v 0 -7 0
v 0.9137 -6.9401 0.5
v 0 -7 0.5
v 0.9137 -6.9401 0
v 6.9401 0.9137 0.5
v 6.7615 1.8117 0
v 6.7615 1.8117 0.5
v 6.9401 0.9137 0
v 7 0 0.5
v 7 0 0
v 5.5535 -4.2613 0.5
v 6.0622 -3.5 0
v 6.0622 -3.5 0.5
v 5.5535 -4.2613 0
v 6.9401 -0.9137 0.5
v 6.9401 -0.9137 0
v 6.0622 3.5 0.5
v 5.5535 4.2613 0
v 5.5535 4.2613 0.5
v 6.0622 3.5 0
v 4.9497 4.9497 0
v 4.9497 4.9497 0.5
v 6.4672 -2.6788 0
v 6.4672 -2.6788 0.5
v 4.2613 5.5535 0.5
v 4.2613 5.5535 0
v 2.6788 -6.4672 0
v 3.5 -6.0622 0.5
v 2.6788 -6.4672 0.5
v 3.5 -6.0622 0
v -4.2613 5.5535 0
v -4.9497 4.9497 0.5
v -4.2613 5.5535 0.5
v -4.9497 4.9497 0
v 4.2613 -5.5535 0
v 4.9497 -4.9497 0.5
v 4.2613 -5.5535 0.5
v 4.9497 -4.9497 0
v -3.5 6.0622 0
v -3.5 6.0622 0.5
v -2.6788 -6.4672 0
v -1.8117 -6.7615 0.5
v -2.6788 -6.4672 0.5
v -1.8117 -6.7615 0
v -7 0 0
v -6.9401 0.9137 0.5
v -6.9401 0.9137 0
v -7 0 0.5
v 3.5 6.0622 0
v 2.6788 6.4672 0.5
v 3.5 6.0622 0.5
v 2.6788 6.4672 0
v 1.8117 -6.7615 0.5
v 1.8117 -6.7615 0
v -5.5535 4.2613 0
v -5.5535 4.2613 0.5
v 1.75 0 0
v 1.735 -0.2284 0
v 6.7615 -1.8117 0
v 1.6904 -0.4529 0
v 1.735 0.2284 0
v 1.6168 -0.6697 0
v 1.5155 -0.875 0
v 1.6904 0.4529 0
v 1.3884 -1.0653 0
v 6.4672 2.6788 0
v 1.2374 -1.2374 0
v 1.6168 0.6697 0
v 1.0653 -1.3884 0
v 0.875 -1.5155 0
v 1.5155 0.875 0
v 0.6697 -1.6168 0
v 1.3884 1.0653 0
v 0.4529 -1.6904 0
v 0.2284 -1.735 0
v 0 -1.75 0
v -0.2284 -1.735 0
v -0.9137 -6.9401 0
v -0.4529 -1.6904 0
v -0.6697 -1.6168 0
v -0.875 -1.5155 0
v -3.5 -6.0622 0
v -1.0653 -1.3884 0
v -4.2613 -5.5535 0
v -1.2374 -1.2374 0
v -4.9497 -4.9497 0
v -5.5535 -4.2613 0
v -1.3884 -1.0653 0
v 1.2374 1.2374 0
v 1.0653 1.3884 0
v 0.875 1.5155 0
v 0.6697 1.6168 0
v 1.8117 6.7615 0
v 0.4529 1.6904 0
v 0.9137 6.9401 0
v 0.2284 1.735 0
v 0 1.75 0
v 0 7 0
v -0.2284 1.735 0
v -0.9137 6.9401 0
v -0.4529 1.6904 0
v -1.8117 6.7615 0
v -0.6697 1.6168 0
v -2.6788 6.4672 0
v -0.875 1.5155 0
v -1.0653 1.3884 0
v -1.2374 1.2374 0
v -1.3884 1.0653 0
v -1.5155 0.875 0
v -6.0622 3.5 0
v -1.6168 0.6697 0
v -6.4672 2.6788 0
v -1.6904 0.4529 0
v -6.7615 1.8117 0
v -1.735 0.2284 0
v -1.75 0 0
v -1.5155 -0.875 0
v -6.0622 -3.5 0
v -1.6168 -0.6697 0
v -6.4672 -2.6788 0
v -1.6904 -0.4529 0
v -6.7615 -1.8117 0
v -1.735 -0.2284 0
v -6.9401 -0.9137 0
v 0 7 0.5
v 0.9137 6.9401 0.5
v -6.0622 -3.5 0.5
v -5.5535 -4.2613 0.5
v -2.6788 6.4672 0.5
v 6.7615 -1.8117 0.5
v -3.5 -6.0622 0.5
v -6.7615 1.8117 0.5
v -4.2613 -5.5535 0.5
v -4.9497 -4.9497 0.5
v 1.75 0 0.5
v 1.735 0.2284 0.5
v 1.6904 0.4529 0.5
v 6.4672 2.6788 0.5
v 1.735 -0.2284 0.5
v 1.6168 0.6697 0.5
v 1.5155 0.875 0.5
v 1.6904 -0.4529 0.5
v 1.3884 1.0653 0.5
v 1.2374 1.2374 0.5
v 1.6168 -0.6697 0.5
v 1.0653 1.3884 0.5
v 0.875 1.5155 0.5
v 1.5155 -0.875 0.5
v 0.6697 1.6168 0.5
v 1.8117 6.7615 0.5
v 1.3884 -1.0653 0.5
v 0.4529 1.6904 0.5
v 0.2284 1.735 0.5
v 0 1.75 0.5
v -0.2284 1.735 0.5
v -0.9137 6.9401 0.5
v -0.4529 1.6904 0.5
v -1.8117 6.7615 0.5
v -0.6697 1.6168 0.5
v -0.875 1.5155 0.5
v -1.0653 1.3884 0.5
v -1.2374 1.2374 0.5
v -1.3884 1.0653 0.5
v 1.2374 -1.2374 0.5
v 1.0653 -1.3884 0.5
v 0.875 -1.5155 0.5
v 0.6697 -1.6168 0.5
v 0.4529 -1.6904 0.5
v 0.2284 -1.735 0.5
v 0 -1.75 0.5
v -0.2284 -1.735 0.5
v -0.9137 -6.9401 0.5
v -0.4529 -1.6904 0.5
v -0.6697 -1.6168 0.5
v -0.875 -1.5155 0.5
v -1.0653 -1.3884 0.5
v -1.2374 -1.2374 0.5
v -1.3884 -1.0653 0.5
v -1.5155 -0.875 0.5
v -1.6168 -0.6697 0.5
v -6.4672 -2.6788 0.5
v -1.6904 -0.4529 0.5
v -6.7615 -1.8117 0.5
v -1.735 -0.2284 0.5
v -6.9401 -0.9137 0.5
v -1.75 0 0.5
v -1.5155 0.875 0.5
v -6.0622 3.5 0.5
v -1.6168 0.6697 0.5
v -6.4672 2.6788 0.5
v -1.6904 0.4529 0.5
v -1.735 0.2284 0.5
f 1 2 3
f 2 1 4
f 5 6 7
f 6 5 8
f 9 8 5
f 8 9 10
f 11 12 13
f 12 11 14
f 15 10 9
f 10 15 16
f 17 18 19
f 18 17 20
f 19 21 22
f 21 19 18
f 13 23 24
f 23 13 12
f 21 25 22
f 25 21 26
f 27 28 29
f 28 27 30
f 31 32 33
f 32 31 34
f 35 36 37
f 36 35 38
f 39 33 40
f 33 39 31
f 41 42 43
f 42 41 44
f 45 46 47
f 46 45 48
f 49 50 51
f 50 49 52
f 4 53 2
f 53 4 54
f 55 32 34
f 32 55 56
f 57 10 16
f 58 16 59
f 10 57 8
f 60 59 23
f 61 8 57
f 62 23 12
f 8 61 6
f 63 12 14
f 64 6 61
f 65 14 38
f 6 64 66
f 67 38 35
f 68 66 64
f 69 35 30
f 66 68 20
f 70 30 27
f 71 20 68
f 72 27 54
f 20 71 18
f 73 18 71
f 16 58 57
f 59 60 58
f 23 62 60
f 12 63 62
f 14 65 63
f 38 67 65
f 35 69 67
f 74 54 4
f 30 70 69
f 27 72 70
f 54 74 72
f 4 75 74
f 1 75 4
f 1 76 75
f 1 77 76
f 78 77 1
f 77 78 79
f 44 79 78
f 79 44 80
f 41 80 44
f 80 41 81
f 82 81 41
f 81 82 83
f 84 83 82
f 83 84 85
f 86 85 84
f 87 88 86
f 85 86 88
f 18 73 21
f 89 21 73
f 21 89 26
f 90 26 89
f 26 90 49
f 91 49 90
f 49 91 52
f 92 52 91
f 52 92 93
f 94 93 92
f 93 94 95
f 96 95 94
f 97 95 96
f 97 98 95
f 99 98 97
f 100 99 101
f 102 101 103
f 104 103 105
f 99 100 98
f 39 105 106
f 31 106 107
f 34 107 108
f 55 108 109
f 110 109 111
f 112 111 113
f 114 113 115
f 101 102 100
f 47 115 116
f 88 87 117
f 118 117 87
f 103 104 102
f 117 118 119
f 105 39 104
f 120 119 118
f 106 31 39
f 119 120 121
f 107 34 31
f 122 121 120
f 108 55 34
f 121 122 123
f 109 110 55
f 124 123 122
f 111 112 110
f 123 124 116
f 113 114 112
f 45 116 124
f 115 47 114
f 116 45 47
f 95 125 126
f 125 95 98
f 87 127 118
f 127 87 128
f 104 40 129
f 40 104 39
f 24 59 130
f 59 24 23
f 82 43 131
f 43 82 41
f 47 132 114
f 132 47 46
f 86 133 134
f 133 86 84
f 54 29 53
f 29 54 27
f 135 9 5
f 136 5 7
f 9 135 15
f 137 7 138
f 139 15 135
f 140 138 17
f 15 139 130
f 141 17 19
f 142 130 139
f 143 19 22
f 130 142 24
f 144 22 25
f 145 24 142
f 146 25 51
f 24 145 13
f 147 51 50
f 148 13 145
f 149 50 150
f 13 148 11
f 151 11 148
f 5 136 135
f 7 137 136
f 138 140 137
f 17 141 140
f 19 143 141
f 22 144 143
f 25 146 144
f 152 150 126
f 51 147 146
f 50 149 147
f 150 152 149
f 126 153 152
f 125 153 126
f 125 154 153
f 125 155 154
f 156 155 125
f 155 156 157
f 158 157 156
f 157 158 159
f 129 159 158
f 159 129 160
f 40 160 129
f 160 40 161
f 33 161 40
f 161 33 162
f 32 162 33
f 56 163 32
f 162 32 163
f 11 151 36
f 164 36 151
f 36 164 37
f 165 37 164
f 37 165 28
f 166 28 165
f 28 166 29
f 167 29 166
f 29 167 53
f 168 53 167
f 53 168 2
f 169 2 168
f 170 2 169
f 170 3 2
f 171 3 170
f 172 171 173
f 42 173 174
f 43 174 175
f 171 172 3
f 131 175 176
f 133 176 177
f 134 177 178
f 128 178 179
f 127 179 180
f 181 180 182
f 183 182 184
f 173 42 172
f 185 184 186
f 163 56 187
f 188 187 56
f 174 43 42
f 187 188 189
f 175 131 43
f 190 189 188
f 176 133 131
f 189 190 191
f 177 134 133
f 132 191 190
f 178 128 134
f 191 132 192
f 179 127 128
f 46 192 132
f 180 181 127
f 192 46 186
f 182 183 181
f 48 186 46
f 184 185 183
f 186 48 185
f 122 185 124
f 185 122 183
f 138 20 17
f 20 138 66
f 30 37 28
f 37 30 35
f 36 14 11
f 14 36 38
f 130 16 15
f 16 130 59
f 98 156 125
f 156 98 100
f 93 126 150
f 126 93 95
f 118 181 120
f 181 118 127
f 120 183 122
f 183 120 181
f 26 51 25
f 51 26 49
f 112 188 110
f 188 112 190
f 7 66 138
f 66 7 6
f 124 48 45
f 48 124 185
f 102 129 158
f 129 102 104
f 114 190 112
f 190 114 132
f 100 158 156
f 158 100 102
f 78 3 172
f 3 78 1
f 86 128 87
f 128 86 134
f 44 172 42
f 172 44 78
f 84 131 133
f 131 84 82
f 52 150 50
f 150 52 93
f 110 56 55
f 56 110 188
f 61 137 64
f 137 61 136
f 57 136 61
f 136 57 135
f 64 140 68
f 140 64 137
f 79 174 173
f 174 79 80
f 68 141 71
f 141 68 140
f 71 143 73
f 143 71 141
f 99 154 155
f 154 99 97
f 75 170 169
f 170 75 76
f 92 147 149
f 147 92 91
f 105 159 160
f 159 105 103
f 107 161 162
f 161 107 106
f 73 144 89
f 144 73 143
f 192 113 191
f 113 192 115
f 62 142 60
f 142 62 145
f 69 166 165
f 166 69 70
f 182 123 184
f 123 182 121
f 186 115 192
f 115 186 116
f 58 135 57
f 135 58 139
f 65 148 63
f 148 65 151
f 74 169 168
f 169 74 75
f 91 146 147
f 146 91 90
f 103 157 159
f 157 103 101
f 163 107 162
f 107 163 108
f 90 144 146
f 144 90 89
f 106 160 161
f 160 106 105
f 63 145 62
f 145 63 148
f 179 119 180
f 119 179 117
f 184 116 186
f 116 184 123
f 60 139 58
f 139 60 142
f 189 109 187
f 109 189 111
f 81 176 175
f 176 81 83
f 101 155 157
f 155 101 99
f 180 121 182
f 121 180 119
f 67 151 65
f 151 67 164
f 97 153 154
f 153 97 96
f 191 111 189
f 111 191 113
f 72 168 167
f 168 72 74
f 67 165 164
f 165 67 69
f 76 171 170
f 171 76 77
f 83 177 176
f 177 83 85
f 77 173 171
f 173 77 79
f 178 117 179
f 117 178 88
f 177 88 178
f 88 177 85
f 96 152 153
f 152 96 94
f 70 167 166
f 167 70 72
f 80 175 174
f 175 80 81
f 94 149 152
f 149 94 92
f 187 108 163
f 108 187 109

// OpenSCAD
// file: parameters.scad
// =============================================================================
// Gen-BP — nightly 2026-10-07 (physics_scorer, honest magpylib watts)
// Cheapest upgrade of the champion: keep Gen-BL's wound bobbins, stator, gap sleeve, endbells and Ø134 steel, and print only two new rotor carriers — 5.00 mm thick (flush magnet seat, recess 0 instead of 0.10 mm, magnet→wound envelope still 0.50 mm) with the diametric Ø5 assists moved from R40/50/60 to R43/50/57. Modular: the rotor is the only swapped module.
// Clocking 0 deg (magnets N facing S) + D-flat keyed bore + index notch + flip-symmetric hole map.
// Windable 2-piece bobbin; turns = physics_scorer turns_fit; copper only between flanges.
// Steel back-iron: 2× Ø134 × 4.76 mm (3/16") mild-steel discs (steel_backiron_disc.dxf); magnets sit ON the steel
// (through-pockets) -> score with --back-iron.
// =============================================================================
topology            = "dual_rotor";

// --- Wire / winding (physics_scorer winding-fit) -------------------------------
wire_awg            = 26;
wire_od             = 0.45;     // insulated OD mm (bare 0.405)
fill_realistic      = 0.65;     // insulated-wire area / window (DENSE layered wind with a jig; scorer cap 0.65)
turns               = 566;       // = physics_scorer turns_fit (do NOT raise)
coil_former_type    = "bobbin";
coil_core_inset     = 17.10;     // radial copper build: hub = copper boundary inset by this
wind_build_axial    = 0.0;      // nothing proud of the flanges
wind_build_radial   = 0.0;

// --- Bobbin (base + lid) ---------------------------------------------------------
coil_id_r           = 29.00;    // copper boundary sector
coil_od_r           = 71.00;
span_deg            = 52.68;    // = pitch - 2*asin((wall+0.85)/coil_id_r) -> >=1.2 mm stator web
former_web          = 8.10;     // copper height between flanges (TALL copper: steel keeps Bz up)
flange_t            = 0.80;     // >= 0.8 mm FDM wall rule (tall winds push on the flanges)
wall                = 1.00;     // flange lip beyond copper
former_bare_h       = former_web + 2 * flange_t;
coil_envelope_h     = former_bare_h + 2 * wind_build_axial;
tab_w               = 7.0;
tab_len             = 7.0;
tab_h               = former_bare_h / 2;
pin_d               = 1.9;      // 1.75 mm filament locating pin
coil_mount_r        = coil_od_r + 0.2 + 4.0;
lead_y              = 1.6;
lead_slot_w         = 0.9;
lead_groove_d       = 0.6;

// --- Gap -------------------------------------------------------------------------
run_clear           = 0.50;     // rotor face -> flange
gap_spacer_h        = run_clear + wind_build_axial;
m2m                 = coil_envelope_h + 2 * run_clear;   // rotor face to rotor face (= gap_sleeve length)

// --- Stator ----------------------------------------------------------------------
coil_stations       = 6;
bay_clear           = 0.25;
stator_thick        = former_bare_h;                        // bobbins flush both faces
stator_od           = 160;
shaft_clear_stator  = 14.0;     // stator is static; gap sleeve OD 12 spins inside

// --- Rotor(s) --------------------------------------------------------------------
magnet_Br           = 1.43;     // N52
magnet_d_large      = 20.0;
magnet_h_large      = 5.0;      // one O20x5 per pocket
magnet_h_small      = 5.0;      // one O5x5 per pocket
halbach_magnetisation = "diametric"; // O5x5 assist magnets MUST be DIAMETRICALLY magnetised (tangential)
rotor_b_same_axis   = true;     // same-index magnets share one axis: N faces S across the gap
large_pocket_d      = 20.3;
small_pocket_d      = 5.3;
pocket_h            = 5.00;     // THROUGH the carrier: magnet back face sits on the steel disc (FLUSH seat: carrier = magnet height, magnet face level with the rotor face)
large_n             = 8;
R_large             = 50.0;
R_small_inner       = 43.0;
R_small_mid         = 50.0;
R_small_outer       = 57.0;
small_r_list        = [R_small_inner, R_small_mid, R_small_outer];   // O5 pockets between poles
carrier_od          = 134.0;
carrier_thick       = pocket_h;
hub_h               = 12.0;     // > steel_t + insert: radial set-screw clears the steel
hub_od              = 24.0;     // slim hub so the M4 brace rods fit at R~18 inside the coil ring
hub_insert_d        = 4.0;      // M3 heat-set insert, radial, bears on the D-flat
rotor_b_offset_deg  = 0.0;      // CLOCKING: magnets directly opposite
shaft_key           = "dflat";
dflat_depth         = 0.5;      // 8 mm shaft with 0.5 mm flat (7.5 across flat)
index_notch_d       = 3.0;

// --- Steel back-iron (buyable laser-cut) -------------------------------------------
steel_t             = 4.76;      // mild steel thickness (image method ignores it; sized from steel_flux.py so the return path stays well below saturation)
steel_center_hole   = 26.0;     // slips over the rotor hub (OD 24)
steel_od            = carrier_od;   // steel disc OD = rotor carrier OD

// --- Modular MAX interface ----------------------------------------------------------
shaft_bore          = 8.35;
dflat_x             = 4.0 - dflat_depth + (shaft_bore - 8.0) / 2;
bearing_d           = 21.85;
bearing_h           = 7.2;
m3_clear            = 3.5;
bolt_r_inner        = 30.0;     // M3 steel-disc clamp bolts (inside the magnet ring)
bolt_n_inner        = 4;
bolt_inner_angles   = [0, 90, 180, 270];
bolt_r_outer        = 63.0;     // M3 steel-disc clamp bolts (outside the magnet ring)
bolt_outer_angles   = [45, 135, 225, 315];
flange_bolt_r       = 73.0;     // frame rods: OUTSIDE the rotor OD (rotors spin inside them)
flange_bolt_n       = 6;
flange_bolt_offset  = 30.00;    // between coil stations -> never cuts a lead groove/tab
brace_r             = 18.0;
brace_d             = 4.3;      // temporary M4 jack rods (assembly only)
brace_n             = 4;
brace_angles        = [45, 135, 225, 315];          // flip-symmetric

spacer_pad_od       = 14.0;
spacer_pad_id       = m3_clear;
endbell_od          = 160;
endbell_thick       = 8.0;
endbell_shaft_clear = 10.0;
collar_h            = 10.0;
standoff_od         = 9.0;
frame_standoff_h    = run_clear + carrier_thick + hub_h + collar_h + 2.0;
sleeve_od           = 12.0;
plate_max_mm        = 410;

$fn = 64;
// main file
// Gen-BP — assembly gap shim, h = run_clear (rotor face -> flange); copper is inside the flanges
include <parameters.scad>;
$fn = 48;
difference() {
    cylinder(d=spacer_pad_od, h=gap_spacer_h);
    translate([0, 0, -0.1]) cylinder(d=spacer_pad_id, h=gap_spacer_h + 0.2);
}
